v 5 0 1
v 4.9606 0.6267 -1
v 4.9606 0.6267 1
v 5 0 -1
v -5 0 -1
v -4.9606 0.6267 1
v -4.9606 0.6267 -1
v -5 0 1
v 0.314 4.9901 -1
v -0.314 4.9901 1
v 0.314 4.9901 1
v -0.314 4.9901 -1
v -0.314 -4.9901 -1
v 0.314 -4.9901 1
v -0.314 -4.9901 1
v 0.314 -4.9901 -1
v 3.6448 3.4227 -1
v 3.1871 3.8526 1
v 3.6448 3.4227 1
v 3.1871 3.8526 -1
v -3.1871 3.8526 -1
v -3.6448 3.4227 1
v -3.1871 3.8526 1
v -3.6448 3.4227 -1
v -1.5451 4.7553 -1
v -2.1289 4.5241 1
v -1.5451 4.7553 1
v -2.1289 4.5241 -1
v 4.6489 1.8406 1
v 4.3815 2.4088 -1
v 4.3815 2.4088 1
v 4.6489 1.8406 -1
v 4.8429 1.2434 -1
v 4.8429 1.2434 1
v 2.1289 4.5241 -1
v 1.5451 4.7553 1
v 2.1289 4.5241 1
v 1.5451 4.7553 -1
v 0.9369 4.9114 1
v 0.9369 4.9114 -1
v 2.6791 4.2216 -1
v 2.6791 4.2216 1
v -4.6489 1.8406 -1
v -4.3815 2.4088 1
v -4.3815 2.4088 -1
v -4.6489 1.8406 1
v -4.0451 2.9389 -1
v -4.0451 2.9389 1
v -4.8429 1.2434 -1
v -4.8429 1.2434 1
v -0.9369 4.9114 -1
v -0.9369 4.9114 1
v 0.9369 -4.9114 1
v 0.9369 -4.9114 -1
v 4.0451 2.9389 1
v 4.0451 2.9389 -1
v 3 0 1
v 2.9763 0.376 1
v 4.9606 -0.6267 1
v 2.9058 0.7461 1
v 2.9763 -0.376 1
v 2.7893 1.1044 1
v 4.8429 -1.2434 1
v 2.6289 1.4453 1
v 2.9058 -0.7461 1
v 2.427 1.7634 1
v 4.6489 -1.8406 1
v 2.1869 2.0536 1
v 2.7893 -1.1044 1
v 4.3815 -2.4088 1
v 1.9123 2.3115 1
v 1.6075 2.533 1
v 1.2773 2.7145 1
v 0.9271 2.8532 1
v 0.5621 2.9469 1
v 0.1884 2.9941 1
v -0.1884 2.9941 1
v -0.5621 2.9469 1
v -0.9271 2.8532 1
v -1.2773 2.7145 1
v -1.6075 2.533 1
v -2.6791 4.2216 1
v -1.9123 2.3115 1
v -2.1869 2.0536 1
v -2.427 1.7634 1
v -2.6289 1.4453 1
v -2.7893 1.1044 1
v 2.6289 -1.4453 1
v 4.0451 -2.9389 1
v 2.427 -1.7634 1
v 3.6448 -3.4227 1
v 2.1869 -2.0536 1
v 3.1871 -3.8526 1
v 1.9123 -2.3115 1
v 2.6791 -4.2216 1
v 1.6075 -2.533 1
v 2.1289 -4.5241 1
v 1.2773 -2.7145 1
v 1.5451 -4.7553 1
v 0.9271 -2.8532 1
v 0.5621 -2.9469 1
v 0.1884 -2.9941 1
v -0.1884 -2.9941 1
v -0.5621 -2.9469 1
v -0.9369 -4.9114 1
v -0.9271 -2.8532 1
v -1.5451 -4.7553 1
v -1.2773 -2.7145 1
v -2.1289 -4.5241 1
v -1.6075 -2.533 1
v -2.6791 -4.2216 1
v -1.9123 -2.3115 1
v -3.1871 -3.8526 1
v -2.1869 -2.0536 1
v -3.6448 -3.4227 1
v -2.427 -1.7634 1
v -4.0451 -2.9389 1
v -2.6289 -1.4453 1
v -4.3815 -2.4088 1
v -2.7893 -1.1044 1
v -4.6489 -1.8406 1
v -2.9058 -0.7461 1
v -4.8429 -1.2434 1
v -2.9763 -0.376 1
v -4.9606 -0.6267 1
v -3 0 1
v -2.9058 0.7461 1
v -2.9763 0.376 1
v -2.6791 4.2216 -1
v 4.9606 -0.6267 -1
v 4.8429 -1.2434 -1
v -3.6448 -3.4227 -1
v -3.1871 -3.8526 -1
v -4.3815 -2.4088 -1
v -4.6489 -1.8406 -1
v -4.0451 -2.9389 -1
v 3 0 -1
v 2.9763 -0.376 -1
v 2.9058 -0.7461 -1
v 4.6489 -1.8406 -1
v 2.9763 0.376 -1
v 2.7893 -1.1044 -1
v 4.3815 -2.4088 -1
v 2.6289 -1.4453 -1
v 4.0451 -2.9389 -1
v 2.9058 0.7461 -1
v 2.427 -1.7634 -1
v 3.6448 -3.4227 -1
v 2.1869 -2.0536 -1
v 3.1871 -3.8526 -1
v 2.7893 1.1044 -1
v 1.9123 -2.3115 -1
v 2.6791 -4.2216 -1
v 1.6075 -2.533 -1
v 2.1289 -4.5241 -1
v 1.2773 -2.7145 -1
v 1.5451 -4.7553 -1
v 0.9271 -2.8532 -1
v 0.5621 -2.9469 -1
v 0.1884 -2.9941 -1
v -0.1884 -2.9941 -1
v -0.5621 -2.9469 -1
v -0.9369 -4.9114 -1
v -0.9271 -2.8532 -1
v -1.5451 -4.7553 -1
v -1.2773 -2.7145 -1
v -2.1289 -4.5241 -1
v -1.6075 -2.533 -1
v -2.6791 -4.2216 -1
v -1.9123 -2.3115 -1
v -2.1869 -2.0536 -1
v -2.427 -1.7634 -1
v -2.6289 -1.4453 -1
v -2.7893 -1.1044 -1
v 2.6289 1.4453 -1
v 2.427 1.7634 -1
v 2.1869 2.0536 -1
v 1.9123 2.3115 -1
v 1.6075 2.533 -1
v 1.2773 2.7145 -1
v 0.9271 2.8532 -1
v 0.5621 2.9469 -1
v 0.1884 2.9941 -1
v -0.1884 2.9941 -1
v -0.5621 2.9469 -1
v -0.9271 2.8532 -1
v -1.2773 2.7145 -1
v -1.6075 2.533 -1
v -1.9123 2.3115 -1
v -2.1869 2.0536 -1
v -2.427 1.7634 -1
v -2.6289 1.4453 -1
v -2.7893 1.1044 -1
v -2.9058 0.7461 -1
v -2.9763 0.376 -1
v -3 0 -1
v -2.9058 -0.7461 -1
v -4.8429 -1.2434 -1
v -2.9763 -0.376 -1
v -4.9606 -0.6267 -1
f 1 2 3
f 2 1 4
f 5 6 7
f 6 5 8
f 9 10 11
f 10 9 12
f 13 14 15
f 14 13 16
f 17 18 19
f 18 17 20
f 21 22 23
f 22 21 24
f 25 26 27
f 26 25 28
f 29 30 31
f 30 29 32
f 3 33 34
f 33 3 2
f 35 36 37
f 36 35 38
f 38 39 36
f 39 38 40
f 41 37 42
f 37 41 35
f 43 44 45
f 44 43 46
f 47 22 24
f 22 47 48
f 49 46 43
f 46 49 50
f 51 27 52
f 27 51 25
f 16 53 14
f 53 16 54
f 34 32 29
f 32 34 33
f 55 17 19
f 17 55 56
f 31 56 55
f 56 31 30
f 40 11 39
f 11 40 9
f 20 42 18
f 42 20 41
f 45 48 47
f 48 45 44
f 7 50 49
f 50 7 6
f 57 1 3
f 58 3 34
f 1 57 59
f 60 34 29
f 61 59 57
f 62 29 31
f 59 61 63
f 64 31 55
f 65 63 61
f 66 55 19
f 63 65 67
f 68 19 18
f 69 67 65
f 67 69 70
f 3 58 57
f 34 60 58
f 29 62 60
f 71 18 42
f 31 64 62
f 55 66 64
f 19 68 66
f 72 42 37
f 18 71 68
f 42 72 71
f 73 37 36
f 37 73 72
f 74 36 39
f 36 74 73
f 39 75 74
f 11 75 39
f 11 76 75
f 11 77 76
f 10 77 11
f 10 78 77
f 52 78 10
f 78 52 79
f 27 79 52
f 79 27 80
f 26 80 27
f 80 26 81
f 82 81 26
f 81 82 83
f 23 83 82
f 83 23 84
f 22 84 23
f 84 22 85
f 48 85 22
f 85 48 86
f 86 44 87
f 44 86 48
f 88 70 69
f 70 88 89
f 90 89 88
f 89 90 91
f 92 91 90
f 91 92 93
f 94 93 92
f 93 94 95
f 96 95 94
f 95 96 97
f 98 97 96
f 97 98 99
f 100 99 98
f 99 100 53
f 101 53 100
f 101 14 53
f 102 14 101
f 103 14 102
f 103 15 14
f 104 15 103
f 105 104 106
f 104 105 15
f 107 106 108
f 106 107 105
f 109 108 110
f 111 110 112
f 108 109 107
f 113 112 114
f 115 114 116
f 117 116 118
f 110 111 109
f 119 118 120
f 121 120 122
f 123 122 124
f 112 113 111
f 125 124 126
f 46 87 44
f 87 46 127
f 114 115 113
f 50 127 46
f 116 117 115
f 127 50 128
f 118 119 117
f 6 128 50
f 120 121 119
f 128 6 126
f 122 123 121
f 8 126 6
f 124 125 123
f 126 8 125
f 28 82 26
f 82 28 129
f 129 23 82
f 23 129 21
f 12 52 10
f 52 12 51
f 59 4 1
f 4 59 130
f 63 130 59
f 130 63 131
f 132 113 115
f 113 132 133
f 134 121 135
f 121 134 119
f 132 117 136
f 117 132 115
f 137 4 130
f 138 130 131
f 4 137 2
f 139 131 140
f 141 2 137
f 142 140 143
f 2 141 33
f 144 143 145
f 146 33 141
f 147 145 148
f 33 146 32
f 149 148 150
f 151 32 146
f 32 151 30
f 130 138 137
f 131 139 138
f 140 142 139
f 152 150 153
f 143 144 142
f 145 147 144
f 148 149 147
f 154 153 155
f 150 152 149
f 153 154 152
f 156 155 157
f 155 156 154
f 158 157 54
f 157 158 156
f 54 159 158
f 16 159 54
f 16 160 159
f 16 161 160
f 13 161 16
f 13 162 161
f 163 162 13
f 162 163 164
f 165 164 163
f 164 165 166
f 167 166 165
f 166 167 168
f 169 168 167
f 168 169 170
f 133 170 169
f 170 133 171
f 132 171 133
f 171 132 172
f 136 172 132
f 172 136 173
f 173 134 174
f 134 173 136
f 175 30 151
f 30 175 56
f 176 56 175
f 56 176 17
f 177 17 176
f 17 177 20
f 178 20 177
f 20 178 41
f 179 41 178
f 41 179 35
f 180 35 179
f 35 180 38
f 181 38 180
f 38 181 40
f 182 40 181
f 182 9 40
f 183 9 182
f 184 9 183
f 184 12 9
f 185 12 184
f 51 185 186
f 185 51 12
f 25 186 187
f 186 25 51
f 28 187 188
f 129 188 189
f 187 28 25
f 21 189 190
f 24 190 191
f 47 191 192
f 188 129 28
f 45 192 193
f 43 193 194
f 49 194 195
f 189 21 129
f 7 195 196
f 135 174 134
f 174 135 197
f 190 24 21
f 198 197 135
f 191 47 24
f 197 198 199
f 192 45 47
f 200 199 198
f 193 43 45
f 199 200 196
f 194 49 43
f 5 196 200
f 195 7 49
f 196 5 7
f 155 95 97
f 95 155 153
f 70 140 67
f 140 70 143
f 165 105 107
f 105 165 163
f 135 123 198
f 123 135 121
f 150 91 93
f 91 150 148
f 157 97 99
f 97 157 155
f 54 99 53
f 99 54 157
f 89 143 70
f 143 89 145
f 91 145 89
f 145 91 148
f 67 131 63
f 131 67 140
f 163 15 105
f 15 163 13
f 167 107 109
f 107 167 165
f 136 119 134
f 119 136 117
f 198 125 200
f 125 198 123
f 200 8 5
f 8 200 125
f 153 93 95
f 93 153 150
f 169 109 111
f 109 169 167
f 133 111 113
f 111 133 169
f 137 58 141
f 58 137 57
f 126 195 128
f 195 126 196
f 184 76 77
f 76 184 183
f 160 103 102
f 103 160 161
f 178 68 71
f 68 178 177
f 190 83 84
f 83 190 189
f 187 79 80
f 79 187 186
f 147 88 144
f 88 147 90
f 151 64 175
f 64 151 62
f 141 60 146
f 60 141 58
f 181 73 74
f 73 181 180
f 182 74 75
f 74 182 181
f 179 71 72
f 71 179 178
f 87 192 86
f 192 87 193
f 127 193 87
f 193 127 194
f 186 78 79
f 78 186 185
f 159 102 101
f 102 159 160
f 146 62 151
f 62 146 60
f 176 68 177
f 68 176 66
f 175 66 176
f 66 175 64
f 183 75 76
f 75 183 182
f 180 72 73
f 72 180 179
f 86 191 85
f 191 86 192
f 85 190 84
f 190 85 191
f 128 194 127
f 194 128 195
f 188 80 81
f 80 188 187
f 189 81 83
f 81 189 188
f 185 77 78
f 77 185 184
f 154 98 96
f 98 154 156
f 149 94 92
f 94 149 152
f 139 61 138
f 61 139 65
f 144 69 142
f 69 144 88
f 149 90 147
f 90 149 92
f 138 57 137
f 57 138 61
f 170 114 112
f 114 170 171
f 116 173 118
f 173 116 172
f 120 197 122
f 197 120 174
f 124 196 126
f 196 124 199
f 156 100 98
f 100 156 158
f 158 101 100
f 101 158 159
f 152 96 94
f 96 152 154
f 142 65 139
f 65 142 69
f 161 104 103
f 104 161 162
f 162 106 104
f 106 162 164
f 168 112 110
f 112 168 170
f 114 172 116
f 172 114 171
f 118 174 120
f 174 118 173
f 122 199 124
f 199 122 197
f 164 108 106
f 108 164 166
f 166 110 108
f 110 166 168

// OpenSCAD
$fn = 50;


difference() {
	union() {
		translate(v = [0, 0, -1.0000000000]) {
			cylinder(h = 2, r = 5.0000000000);
		}
	}
	union() {
		translate(v = [0, 0, -100.0000000000]) {
			cylinder(h = 200, r = 3);
		}
	}
}
